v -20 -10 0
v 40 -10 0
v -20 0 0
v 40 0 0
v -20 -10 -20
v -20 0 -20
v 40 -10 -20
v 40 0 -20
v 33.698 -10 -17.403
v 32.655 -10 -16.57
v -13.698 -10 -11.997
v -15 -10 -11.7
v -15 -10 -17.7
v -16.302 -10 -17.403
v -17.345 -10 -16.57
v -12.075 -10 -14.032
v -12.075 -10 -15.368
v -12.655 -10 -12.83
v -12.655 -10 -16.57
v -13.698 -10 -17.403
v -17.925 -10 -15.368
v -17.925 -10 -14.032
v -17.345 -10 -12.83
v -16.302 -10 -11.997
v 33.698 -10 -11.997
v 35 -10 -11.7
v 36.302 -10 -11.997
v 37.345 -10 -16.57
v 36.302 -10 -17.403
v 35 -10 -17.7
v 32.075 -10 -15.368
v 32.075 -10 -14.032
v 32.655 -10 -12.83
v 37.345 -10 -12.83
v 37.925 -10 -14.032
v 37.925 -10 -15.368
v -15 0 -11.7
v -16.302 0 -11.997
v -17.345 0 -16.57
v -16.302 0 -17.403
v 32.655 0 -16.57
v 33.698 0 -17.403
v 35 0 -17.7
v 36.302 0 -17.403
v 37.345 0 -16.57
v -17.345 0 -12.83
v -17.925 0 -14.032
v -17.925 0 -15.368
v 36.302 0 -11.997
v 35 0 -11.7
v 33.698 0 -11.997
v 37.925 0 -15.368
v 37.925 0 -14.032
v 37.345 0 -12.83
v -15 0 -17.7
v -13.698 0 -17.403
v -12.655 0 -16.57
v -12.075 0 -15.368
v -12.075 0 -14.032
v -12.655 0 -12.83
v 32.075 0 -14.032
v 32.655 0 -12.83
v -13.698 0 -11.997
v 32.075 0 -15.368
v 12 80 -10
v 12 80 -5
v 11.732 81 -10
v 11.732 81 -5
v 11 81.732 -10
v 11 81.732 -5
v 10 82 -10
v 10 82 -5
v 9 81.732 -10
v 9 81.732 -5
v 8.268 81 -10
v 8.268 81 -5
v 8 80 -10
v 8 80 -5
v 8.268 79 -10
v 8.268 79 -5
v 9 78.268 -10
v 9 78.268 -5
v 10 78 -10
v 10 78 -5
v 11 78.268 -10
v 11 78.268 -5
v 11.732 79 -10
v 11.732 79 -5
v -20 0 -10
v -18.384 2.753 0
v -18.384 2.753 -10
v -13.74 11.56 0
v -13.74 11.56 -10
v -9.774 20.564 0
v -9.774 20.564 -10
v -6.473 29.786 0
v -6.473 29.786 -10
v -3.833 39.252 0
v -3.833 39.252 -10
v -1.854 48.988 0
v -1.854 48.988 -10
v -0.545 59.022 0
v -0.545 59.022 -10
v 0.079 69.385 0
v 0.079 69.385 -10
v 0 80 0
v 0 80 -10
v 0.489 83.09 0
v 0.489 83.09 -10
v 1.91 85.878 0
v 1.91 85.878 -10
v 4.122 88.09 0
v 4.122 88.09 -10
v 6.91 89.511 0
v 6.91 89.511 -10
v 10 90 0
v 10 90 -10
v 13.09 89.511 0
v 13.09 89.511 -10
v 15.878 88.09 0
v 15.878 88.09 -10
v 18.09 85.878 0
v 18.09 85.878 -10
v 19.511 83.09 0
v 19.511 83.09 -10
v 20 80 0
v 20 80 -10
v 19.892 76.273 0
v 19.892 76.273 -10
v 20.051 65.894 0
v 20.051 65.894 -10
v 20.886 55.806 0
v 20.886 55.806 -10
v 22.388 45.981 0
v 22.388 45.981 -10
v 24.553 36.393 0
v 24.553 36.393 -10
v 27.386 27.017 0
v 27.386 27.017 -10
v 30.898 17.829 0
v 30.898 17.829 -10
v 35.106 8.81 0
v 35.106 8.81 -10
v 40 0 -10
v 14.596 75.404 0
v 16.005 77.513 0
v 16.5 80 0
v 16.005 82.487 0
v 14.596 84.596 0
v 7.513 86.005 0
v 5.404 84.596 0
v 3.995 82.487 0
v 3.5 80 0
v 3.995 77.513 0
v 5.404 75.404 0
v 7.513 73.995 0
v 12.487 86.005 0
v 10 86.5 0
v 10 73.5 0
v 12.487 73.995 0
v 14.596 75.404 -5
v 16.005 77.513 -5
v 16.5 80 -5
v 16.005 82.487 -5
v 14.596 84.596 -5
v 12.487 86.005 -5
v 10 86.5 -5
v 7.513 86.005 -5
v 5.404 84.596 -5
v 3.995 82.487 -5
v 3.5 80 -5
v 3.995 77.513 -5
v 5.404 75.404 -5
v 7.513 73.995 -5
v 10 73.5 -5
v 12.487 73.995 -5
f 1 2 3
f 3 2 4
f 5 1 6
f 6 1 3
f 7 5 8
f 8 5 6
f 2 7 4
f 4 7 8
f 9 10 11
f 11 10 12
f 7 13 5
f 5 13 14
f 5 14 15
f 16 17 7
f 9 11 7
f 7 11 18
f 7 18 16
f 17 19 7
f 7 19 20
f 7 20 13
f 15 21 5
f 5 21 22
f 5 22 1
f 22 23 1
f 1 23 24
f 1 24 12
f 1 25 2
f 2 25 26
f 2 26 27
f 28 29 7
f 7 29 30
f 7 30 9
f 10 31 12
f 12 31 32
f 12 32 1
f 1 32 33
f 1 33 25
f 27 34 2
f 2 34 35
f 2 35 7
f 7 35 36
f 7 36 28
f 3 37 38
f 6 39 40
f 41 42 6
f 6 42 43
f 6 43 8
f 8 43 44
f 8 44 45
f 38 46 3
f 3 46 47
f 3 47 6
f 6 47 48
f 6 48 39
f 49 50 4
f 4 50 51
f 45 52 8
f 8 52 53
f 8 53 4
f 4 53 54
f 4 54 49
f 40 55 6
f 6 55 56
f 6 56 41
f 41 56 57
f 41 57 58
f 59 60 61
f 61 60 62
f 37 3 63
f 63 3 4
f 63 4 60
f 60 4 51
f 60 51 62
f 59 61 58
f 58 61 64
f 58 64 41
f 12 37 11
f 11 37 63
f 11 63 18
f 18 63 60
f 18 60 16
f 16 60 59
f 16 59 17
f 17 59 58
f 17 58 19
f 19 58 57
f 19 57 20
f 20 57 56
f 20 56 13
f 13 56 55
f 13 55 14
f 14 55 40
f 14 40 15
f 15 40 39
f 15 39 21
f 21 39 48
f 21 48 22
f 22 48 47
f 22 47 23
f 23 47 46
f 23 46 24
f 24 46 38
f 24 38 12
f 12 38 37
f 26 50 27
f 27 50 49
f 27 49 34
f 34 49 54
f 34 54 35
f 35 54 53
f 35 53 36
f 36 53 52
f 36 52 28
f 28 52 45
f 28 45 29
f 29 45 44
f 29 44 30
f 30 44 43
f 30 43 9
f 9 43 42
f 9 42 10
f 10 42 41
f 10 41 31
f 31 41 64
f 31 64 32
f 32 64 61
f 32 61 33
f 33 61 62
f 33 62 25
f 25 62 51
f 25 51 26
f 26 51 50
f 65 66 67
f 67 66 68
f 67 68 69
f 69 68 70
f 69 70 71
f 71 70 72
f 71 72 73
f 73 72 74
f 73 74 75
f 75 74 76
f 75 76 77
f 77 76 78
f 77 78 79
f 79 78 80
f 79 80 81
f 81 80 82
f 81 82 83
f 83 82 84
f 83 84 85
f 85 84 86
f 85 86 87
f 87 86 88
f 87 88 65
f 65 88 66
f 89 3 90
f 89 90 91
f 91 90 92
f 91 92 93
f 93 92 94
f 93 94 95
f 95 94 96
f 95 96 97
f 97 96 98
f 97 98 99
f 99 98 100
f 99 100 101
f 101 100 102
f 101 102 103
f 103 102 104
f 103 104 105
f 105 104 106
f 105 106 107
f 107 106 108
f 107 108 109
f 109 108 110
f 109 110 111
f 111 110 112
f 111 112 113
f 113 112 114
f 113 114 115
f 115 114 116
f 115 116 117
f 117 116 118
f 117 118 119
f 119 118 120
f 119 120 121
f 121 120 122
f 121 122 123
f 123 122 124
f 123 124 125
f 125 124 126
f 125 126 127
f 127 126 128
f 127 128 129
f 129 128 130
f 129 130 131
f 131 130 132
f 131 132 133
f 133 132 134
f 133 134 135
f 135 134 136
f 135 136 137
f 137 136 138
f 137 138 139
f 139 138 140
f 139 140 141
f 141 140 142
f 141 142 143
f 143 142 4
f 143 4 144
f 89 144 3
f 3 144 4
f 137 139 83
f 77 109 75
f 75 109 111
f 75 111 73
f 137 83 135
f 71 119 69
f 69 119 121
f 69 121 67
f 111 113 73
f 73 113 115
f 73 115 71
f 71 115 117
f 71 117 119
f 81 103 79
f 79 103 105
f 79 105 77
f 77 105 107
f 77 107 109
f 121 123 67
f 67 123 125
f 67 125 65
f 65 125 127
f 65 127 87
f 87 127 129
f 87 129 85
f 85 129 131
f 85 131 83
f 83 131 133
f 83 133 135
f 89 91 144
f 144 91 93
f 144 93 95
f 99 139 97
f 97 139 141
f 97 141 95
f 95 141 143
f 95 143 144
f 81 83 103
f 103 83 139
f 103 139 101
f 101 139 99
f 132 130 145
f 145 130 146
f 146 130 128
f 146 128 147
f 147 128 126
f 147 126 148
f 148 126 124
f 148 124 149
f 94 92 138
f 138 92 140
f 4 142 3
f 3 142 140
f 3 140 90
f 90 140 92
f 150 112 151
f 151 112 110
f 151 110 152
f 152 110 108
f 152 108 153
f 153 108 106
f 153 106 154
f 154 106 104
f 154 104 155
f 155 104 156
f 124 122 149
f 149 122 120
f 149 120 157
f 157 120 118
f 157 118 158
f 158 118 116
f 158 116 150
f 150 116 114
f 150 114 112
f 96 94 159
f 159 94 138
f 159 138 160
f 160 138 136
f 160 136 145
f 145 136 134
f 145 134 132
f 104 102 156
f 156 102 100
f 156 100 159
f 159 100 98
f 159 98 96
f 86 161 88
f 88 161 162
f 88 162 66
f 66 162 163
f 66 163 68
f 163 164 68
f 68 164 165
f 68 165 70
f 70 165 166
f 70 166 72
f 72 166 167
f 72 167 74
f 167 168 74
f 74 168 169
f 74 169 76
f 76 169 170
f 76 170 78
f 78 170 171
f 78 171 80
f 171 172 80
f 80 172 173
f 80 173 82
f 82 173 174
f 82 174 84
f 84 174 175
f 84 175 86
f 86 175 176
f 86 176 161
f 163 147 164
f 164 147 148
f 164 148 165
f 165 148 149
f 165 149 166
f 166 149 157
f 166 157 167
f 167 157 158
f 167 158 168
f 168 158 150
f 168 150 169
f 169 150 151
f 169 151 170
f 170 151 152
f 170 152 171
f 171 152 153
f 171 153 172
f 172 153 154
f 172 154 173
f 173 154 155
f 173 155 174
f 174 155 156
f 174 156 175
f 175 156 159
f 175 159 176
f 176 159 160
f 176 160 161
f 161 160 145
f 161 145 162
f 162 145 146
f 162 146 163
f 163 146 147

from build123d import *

# Parameters (mm, degrees)
IZIM1_R            = 10
TABAN_FLAN_1_DEPTH = 50
IZIM6_W            = 300
IZIM6_H            = 100
IZIM6_R            = 15
TABAN_FLAN_2_DEPTH = 50
SCALE1_SCALE       = 0.2
SKETCH3_R          = 6.5
CUT_EXTRUDE1_DEPTH = 5


# Sheet-metal steps are written as plain solids
with BuildPart() as part:
    # Çizim1 → Taban-Flanş1 (new body)
    with BuildSketch(Plane.XY):
        with BuildLine():
            Line((-100, 0), (200, 0))
            add(Edge.make_bspline(
                [(200, 0), (91.182830232, 180.87360843), (100, 400)],
                knots=[0, 0, 0, 1, 1, 1], degree=2))
            ThreePointArc((100, 400), (50, 450), (0, 400))
            add(Edge.make_bspline(
                [(-100, 0), (8.817169768, 180.87360843), (0, 400)],
                knots=[0, 0, 0, 1, 1, 1], degree=2))
        make_face()
        with Locations((50, 400)):
            Circle(IZIM1_R, mode=Mode.SUBTRACT)
    extrude(amount=-TABAN_FLAN_1_DEPTH)


with BuildPart() as body_2:
    # Çizim6 → Taban-Flanş2 (new body)
    with BuildSketch(Plane(origin=(0, 0, 0), x_dir=(1, 0, 0), z_dir=(0, 1, 0))):
        with Locations((50, 50)):
            Rectangle(IZIM6_W, IZIM6_H)
        with Locations(Location((-75, 73.5, 0), (0, 0, 270))):
            Circle(IZIM6_R, mode=Mode.SUBTRACT)
        with Locations(Location((175, 73.5, 0), (0, 0, 270))):
            Circle(IZIM6_R, mode=Mode.SUBTRACT)
    extrude(amount=-TABAN_FLAN_2_DEPTH)


with BuildPart() as body_2_1:
    # Scale1: scaled about (0, 0, 0)
    add(body_2.part.scale(SCALE1_SCALE))


with BuildPart() as part_1:
    # Scale1: scaled about (0, 0, 0)
    add(part.part.scale(SCALE1_SCALE))

    # Sketch3 → Cut-Extrude1 (cut)
    with BuildSketch(Plane.XY):
        with Locations((10, 80)):
            Circle(SKETCH3_R)
    extrude(amount=-CUT_EXTRUDE1_DEPTH, mode=Mode.SUBTRACT)


solid = Compound([body_2_1.part, part_1.part])
